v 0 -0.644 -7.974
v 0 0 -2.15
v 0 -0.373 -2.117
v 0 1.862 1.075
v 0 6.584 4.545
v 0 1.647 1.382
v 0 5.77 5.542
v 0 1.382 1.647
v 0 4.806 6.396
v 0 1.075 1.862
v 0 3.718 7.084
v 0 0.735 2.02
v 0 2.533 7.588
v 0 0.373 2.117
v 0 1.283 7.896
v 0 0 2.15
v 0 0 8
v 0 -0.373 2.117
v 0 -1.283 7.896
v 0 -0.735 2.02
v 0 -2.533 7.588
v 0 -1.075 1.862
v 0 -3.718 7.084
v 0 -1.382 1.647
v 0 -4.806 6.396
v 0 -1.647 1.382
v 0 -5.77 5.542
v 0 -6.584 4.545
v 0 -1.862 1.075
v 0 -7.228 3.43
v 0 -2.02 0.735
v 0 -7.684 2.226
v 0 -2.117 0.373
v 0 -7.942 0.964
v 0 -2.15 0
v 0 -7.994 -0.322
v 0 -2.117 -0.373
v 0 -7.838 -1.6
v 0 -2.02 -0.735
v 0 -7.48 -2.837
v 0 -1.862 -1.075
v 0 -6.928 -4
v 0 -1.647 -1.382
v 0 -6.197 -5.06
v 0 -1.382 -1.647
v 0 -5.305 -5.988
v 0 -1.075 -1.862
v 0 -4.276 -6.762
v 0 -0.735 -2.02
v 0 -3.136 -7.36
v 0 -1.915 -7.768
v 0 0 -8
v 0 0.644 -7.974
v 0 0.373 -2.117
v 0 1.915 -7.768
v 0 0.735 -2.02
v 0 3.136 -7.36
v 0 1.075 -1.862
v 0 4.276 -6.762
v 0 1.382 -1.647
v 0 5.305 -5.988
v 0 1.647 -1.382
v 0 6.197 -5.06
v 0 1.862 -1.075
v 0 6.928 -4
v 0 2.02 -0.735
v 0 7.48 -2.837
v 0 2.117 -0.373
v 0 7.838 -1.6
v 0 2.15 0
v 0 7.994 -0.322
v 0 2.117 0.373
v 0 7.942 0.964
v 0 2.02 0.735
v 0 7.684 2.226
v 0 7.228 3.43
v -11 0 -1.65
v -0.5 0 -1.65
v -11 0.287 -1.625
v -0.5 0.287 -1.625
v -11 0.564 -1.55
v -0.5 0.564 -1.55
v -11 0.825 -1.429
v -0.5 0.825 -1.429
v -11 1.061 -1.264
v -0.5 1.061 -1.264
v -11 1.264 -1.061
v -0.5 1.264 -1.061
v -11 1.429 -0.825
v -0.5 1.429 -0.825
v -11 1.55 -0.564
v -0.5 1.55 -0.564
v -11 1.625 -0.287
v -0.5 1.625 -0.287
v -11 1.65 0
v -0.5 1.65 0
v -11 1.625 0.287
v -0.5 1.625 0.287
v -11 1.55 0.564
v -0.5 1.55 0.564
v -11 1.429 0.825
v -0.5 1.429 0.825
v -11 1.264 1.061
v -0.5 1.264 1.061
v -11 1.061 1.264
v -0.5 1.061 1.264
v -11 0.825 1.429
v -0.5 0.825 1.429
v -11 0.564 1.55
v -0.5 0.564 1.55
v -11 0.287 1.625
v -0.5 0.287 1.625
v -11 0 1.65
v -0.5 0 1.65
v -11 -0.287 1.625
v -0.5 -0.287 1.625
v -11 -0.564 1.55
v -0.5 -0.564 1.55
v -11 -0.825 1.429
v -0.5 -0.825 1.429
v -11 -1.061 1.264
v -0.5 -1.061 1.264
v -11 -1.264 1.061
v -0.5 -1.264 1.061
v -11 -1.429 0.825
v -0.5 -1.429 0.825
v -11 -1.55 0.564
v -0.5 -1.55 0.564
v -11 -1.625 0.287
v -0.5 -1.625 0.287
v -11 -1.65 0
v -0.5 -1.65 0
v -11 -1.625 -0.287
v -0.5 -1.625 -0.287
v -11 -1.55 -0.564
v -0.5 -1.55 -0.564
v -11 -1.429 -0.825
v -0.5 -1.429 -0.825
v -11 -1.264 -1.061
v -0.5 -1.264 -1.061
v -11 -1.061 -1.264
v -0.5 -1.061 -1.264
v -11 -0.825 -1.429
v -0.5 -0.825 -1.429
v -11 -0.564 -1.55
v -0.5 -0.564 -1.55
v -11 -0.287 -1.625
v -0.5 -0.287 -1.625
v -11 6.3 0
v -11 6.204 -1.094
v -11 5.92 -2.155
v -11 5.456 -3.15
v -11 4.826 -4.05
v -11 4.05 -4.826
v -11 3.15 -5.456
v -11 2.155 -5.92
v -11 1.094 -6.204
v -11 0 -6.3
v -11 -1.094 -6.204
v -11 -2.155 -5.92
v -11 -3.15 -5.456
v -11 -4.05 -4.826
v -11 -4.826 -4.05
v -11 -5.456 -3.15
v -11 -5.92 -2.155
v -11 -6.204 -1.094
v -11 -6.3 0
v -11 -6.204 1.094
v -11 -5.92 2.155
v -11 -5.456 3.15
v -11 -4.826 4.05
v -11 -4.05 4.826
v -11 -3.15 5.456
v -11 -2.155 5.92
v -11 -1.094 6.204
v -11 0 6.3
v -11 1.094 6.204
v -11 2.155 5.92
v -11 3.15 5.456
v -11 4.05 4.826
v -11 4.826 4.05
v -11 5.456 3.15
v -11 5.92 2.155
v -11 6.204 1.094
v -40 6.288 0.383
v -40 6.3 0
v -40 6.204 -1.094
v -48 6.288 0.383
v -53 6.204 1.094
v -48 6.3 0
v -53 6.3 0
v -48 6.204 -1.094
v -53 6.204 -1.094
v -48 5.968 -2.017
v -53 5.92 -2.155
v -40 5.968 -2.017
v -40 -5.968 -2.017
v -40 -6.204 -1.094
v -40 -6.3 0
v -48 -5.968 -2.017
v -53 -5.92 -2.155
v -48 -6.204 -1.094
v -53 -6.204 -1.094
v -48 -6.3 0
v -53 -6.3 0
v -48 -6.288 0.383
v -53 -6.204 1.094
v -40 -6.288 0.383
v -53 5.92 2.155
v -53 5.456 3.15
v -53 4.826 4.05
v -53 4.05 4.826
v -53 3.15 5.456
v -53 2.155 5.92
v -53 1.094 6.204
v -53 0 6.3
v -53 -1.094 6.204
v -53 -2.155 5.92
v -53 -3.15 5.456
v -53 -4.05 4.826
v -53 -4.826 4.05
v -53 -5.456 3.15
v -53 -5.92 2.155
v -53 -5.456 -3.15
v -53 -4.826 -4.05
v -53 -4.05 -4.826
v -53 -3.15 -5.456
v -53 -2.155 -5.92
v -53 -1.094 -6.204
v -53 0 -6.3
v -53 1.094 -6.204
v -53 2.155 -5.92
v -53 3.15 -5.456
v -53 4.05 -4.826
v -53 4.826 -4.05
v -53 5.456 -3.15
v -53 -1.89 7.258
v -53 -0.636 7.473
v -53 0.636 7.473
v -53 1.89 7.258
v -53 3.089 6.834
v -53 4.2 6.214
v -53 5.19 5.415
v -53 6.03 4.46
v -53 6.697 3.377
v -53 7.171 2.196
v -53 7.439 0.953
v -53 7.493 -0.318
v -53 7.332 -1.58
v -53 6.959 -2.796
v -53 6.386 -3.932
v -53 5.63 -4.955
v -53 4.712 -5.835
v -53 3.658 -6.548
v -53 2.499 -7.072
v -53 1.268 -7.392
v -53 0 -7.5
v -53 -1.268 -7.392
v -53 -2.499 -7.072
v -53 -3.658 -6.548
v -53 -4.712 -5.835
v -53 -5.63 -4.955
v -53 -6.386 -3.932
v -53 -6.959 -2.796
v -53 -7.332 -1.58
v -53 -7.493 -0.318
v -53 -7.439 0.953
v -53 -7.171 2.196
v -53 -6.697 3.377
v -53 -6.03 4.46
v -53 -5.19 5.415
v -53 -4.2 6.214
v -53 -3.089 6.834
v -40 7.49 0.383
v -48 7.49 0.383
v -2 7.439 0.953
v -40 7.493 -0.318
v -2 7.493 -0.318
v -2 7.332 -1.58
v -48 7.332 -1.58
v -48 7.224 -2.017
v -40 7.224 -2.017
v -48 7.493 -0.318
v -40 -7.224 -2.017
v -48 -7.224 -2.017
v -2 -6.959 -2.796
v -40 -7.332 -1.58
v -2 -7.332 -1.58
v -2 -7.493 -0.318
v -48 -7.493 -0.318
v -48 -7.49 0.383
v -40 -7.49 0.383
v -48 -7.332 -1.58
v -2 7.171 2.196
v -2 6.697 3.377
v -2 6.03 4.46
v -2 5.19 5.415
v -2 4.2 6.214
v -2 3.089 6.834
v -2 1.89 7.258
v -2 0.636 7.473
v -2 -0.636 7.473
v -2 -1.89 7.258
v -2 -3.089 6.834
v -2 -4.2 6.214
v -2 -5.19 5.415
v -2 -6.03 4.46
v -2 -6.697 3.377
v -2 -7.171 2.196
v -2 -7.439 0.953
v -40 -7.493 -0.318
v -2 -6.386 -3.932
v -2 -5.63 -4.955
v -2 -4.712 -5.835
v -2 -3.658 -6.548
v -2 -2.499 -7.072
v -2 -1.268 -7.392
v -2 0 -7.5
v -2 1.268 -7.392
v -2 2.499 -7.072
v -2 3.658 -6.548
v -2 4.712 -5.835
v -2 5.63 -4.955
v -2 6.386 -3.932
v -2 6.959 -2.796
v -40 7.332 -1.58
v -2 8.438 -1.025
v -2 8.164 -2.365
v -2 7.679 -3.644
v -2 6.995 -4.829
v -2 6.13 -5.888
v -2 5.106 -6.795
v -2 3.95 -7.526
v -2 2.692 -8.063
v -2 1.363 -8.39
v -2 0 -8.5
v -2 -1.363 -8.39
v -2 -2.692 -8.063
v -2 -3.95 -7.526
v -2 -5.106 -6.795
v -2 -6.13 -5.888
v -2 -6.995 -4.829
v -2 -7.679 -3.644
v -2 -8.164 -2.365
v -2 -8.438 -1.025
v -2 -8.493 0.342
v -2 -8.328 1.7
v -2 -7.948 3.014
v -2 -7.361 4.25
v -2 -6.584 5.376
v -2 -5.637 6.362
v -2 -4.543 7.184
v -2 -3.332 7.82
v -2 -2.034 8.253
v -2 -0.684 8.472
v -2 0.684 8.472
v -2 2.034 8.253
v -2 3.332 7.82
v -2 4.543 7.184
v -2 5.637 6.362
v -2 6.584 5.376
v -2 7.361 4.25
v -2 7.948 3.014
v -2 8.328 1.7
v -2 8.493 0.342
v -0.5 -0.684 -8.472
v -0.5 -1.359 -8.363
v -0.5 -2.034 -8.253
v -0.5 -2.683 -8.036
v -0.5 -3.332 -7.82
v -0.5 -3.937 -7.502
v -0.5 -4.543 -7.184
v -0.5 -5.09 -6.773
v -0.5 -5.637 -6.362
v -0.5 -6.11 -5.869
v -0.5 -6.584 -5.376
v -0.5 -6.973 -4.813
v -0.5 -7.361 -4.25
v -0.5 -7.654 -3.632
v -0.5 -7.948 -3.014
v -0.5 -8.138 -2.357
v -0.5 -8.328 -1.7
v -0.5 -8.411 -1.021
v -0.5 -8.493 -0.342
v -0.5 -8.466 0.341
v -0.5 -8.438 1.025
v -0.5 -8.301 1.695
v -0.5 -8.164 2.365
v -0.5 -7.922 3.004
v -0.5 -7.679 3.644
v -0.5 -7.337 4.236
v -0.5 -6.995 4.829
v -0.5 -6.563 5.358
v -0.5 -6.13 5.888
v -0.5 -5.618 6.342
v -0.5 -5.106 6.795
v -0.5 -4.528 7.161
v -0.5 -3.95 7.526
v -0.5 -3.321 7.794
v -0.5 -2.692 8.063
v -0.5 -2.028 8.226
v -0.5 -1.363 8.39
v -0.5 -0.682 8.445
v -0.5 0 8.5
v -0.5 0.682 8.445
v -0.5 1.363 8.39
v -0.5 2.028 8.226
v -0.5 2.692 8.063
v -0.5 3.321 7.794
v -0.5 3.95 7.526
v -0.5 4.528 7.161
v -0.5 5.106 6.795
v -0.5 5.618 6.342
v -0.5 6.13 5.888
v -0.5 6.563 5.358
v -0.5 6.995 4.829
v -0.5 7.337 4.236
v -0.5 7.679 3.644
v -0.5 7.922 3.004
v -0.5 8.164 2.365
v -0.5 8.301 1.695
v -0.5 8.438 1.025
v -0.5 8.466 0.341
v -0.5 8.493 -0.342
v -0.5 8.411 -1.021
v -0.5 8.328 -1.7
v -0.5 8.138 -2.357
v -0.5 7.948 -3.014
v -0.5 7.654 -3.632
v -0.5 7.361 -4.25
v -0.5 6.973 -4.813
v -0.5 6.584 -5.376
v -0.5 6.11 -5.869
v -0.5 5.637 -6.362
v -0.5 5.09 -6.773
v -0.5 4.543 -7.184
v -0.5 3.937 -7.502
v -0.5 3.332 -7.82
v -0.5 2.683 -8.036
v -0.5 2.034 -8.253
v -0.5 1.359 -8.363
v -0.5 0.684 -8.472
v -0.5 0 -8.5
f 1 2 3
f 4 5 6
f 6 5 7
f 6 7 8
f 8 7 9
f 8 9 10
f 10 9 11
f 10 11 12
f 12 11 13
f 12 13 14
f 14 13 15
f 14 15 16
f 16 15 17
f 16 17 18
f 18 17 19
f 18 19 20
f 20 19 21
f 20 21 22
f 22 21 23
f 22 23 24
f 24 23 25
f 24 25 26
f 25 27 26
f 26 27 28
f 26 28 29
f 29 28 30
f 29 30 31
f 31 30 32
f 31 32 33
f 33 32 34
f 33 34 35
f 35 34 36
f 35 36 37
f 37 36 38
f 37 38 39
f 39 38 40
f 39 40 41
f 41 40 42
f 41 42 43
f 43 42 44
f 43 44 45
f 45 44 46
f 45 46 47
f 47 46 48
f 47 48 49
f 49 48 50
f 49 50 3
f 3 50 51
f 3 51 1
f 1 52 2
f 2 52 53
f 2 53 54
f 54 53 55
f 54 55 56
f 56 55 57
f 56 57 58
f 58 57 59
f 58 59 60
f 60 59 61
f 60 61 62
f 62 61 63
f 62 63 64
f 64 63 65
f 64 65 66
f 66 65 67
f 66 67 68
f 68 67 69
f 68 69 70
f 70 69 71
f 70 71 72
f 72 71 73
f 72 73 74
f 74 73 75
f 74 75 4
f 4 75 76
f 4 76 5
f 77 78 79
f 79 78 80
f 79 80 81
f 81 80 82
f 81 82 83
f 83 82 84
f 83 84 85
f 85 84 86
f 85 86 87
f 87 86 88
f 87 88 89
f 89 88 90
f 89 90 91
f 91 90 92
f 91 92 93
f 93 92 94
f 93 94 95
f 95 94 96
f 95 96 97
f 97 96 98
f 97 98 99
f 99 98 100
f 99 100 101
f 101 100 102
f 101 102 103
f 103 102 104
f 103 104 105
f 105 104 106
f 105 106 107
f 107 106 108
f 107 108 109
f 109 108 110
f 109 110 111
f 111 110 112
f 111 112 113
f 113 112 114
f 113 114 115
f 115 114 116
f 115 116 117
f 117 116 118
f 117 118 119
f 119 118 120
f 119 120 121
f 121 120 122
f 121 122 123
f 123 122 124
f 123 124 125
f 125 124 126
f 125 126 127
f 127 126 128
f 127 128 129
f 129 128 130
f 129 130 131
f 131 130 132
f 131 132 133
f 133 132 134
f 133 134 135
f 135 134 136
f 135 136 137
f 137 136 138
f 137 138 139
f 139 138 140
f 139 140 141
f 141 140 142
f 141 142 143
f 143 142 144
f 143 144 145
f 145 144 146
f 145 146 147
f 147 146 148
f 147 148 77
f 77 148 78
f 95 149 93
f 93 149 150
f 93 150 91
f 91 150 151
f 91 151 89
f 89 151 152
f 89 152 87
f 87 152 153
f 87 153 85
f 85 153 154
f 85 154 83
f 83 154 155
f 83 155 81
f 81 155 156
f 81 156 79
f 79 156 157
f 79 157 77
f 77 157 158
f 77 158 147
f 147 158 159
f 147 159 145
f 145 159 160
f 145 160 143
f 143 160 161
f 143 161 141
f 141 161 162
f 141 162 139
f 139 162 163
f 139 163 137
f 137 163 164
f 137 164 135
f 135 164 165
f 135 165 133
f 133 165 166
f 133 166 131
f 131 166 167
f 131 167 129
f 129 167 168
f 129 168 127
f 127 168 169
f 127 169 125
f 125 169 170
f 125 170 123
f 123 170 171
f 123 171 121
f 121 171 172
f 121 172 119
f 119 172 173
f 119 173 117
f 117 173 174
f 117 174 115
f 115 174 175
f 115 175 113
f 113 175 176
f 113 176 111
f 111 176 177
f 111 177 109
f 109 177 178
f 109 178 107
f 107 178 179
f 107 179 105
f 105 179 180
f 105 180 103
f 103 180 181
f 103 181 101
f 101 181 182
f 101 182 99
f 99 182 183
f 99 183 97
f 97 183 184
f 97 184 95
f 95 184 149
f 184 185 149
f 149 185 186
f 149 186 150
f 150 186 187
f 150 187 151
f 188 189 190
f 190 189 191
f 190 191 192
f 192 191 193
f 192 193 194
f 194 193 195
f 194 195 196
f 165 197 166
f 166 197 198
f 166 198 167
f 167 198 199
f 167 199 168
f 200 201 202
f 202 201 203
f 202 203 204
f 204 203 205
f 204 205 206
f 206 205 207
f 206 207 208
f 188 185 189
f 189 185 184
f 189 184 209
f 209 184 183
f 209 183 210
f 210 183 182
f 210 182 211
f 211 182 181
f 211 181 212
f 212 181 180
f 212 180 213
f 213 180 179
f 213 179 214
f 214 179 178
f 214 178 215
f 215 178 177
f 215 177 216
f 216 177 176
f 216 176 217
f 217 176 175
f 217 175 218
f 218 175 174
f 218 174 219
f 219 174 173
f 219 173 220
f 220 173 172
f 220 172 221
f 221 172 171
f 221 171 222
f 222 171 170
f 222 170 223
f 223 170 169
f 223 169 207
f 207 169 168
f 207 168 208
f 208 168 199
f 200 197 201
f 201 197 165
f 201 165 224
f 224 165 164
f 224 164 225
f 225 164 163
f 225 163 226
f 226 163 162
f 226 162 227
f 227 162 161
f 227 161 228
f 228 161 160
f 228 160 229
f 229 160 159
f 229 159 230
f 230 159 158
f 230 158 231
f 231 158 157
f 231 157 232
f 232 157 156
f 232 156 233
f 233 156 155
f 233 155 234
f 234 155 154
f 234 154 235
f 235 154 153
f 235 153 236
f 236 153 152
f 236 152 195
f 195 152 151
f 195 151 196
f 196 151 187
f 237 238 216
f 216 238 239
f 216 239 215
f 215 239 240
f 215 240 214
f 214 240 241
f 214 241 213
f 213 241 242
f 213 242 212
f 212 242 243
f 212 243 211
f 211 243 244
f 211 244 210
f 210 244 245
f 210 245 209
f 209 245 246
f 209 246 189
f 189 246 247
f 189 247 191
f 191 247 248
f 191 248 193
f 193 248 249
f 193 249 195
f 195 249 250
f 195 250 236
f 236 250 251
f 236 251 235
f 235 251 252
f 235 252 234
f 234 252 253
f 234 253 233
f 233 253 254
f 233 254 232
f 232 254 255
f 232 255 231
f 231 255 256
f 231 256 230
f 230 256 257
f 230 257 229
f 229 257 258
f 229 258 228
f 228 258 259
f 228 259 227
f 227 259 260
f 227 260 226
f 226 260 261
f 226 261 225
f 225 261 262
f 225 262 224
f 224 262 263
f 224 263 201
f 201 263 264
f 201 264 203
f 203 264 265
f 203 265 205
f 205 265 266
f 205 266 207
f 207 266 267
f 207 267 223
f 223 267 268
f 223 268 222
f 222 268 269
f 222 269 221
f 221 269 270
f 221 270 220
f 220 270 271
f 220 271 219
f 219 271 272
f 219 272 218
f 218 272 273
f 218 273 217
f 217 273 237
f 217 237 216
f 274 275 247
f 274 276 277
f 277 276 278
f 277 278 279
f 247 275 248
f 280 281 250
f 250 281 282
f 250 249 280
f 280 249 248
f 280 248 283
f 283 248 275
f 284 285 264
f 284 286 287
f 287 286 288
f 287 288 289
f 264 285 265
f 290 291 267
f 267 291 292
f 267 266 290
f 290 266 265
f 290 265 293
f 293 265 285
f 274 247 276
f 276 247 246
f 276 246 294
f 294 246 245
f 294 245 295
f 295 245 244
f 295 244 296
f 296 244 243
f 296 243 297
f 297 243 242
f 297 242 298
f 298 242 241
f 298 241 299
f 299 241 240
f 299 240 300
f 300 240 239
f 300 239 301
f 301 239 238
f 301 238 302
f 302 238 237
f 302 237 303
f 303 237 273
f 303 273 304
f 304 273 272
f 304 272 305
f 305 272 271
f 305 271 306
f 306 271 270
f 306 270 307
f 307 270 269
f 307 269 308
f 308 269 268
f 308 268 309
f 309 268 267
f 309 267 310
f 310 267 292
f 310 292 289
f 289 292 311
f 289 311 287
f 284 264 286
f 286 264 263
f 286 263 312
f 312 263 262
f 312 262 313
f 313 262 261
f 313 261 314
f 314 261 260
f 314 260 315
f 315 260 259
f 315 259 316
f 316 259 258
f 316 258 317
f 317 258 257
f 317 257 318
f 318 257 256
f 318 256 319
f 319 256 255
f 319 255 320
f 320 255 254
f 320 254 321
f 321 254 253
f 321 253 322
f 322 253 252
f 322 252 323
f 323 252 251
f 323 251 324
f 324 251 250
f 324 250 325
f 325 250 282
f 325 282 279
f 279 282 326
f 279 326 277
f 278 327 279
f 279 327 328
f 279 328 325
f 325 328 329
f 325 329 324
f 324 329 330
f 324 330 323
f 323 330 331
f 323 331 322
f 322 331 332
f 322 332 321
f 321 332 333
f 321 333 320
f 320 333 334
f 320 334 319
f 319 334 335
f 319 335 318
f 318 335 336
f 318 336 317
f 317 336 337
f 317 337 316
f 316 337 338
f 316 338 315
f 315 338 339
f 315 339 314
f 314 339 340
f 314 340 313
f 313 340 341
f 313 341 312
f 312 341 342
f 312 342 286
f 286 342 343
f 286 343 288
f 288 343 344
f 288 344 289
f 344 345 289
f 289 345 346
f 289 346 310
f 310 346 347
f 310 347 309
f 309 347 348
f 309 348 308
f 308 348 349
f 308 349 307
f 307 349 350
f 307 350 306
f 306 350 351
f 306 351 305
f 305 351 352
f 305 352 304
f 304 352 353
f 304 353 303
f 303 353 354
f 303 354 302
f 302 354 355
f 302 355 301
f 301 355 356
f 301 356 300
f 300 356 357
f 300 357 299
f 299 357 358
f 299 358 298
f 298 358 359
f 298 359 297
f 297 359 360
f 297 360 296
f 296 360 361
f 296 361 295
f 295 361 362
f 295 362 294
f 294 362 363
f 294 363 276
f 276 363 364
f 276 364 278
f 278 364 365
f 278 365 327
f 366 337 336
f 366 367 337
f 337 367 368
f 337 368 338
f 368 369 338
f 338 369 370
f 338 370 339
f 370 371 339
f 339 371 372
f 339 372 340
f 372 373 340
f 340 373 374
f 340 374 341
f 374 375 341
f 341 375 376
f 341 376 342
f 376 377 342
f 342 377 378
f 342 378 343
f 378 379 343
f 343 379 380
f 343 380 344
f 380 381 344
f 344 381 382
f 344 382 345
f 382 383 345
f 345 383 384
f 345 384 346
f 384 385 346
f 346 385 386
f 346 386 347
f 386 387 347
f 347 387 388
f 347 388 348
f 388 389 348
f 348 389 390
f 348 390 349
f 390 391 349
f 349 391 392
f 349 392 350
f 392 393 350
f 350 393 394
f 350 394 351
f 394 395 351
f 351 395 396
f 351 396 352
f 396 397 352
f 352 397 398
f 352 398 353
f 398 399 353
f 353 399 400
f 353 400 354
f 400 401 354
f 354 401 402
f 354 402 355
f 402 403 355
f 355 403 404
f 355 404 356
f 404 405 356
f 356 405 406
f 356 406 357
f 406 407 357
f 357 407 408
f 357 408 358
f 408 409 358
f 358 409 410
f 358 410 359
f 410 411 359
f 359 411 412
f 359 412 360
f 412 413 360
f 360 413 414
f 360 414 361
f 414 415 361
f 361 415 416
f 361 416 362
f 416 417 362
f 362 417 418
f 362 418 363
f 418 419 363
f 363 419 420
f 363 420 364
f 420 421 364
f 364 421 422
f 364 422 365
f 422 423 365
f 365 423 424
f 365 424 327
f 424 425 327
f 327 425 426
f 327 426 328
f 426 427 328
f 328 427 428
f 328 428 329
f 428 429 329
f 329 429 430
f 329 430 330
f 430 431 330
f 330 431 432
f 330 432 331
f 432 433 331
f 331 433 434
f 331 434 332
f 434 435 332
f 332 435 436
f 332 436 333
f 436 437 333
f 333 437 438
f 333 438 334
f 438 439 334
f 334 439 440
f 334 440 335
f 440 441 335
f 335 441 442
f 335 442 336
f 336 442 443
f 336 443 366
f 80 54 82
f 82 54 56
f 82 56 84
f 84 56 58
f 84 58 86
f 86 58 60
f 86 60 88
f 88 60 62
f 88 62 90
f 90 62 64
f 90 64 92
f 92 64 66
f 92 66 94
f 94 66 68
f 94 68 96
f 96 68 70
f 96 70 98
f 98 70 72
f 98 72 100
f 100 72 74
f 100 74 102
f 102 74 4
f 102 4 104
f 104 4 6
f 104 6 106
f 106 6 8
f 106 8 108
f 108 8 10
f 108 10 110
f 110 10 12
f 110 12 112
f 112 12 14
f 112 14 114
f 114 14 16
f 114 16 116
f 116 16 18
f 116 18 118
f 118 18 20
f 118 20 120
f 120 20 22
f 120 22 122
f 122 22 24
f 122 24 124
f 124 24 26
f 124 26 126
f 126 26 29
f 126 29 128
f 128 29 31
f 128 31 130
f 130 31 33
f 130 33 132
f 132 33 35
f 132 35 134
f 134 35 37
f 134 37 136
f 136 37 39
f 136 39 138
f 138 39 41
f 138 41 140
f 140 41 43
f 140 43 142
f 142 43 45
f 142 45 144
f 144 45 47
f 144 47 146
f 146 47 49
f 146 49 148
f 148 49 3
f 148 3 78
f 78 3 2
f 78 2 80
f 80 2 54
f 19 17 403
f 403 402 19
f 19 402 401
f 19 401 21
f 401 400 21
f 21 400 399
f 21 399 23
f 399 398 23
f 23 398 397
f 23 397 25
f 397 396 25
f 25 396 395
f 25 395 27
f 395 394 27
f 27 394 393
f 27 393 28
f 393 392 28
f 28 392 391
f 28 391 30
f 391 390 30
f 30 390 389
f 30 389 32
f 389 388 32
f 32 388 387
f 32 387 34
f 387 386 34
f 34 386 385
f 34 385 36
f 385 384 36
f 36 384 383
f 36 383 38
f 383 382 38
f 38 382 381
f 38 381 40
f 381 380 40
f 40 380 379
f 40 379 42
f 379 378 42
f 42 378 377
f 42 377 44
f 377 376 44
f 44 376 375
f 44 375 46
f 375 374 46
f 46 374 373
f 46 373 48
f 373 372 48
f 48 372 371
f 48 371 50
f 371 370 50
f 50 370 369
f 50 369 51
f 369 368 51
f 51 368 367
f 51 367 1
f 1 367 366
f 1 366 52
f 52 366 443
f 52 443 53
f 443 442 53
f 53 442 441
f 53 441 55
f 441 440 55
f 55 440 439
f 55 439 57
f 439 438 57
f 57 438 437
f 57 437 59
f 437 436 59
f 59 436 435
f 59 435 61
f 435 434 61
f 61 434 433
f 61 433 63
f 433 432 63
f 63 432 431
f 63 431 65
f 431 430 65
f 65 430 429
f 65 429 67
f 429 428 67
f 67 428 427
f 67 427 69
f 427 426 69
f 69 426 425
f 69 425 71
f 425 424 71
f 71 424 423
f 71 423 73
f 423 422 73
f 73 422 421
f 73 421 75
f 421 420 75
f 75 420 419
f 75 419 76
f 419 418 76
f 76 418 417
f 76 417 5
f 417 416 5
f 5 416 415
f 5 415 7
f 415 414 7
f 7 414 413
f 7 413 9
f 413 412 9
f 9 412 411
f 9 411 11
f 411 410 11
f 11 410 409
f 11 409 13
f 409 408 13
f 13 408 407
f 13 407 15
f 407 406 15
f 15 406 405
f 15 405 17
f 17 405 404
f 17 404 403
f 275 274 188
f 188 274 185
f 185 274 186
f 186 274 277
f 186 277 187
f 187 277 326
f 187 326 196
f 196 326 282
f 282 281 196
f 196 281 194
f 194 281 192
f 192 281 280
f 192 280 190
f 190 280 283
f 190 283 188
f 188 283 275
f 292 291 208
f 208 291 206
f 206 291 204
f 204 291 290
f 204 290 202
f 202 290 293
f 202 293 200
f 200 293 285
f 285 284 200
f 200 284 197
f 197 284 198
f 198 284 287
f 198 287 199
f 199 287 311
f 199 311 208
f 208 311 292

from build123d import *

# Parameters (mm, degrees)
CHAMFER2_SIZE           = 0.5
SKETCH3_W               = 8
SKETCH3_H               = 2.4
CUT_EXTRUDE1_DEPTH      = 9.5
CUT_EXTRUDE1_DEPTH_BACK = 9.5


with BuildPart() as part:
    # Sketch2 → Revolve1 (revolve)
    with BuildSketch(Plane(origin=(0, 0, 0), x_dir=(1, 0, 0), z_dir=(0, 1, 0))):
        Polygon((0, 1.65), (-11, 1.65), (-11, 6.3), (-53, 6.3), (-53, 7.5), (-2, 7.5), (-2, 8.5), (0, 8.5), align=None)
    revolve(axis=Axis((0, 0, 0), (-1, 0, 0)))

    # Chamfer2
    chamfer2_edges = [part.edges().sort_by_distance(p)[0] for p in [
        (0, 0, 8.5),
        (0, 0, 1.65),
    ]]
    chamfer(chamfer2_edges, length=CHAMFER2_SIZE)

    # Sketch3 → Cut-Extrude1 (cut, two sides)
    with BuildSketch(Plane(origin=(0, 0, 0), x_dir=(1, 0, 0), z_dir=(0, 1, 0))) as cut_extrude1_sk:
        with Locations((-44, 0.817065344)):
            Rectangle(SKETCH3_W, SKETCH3_H)
    extrude(amount=CUT_EXTRUDE1_DEPTH, mode=Mode.SUBTRACT)
    extrude(cut_extrude1_sk.sketch, amount=-CUT_EXTRUDE1_DEPTH_BACK, mode=Mode.SUBTRACT)


solid = part.part
